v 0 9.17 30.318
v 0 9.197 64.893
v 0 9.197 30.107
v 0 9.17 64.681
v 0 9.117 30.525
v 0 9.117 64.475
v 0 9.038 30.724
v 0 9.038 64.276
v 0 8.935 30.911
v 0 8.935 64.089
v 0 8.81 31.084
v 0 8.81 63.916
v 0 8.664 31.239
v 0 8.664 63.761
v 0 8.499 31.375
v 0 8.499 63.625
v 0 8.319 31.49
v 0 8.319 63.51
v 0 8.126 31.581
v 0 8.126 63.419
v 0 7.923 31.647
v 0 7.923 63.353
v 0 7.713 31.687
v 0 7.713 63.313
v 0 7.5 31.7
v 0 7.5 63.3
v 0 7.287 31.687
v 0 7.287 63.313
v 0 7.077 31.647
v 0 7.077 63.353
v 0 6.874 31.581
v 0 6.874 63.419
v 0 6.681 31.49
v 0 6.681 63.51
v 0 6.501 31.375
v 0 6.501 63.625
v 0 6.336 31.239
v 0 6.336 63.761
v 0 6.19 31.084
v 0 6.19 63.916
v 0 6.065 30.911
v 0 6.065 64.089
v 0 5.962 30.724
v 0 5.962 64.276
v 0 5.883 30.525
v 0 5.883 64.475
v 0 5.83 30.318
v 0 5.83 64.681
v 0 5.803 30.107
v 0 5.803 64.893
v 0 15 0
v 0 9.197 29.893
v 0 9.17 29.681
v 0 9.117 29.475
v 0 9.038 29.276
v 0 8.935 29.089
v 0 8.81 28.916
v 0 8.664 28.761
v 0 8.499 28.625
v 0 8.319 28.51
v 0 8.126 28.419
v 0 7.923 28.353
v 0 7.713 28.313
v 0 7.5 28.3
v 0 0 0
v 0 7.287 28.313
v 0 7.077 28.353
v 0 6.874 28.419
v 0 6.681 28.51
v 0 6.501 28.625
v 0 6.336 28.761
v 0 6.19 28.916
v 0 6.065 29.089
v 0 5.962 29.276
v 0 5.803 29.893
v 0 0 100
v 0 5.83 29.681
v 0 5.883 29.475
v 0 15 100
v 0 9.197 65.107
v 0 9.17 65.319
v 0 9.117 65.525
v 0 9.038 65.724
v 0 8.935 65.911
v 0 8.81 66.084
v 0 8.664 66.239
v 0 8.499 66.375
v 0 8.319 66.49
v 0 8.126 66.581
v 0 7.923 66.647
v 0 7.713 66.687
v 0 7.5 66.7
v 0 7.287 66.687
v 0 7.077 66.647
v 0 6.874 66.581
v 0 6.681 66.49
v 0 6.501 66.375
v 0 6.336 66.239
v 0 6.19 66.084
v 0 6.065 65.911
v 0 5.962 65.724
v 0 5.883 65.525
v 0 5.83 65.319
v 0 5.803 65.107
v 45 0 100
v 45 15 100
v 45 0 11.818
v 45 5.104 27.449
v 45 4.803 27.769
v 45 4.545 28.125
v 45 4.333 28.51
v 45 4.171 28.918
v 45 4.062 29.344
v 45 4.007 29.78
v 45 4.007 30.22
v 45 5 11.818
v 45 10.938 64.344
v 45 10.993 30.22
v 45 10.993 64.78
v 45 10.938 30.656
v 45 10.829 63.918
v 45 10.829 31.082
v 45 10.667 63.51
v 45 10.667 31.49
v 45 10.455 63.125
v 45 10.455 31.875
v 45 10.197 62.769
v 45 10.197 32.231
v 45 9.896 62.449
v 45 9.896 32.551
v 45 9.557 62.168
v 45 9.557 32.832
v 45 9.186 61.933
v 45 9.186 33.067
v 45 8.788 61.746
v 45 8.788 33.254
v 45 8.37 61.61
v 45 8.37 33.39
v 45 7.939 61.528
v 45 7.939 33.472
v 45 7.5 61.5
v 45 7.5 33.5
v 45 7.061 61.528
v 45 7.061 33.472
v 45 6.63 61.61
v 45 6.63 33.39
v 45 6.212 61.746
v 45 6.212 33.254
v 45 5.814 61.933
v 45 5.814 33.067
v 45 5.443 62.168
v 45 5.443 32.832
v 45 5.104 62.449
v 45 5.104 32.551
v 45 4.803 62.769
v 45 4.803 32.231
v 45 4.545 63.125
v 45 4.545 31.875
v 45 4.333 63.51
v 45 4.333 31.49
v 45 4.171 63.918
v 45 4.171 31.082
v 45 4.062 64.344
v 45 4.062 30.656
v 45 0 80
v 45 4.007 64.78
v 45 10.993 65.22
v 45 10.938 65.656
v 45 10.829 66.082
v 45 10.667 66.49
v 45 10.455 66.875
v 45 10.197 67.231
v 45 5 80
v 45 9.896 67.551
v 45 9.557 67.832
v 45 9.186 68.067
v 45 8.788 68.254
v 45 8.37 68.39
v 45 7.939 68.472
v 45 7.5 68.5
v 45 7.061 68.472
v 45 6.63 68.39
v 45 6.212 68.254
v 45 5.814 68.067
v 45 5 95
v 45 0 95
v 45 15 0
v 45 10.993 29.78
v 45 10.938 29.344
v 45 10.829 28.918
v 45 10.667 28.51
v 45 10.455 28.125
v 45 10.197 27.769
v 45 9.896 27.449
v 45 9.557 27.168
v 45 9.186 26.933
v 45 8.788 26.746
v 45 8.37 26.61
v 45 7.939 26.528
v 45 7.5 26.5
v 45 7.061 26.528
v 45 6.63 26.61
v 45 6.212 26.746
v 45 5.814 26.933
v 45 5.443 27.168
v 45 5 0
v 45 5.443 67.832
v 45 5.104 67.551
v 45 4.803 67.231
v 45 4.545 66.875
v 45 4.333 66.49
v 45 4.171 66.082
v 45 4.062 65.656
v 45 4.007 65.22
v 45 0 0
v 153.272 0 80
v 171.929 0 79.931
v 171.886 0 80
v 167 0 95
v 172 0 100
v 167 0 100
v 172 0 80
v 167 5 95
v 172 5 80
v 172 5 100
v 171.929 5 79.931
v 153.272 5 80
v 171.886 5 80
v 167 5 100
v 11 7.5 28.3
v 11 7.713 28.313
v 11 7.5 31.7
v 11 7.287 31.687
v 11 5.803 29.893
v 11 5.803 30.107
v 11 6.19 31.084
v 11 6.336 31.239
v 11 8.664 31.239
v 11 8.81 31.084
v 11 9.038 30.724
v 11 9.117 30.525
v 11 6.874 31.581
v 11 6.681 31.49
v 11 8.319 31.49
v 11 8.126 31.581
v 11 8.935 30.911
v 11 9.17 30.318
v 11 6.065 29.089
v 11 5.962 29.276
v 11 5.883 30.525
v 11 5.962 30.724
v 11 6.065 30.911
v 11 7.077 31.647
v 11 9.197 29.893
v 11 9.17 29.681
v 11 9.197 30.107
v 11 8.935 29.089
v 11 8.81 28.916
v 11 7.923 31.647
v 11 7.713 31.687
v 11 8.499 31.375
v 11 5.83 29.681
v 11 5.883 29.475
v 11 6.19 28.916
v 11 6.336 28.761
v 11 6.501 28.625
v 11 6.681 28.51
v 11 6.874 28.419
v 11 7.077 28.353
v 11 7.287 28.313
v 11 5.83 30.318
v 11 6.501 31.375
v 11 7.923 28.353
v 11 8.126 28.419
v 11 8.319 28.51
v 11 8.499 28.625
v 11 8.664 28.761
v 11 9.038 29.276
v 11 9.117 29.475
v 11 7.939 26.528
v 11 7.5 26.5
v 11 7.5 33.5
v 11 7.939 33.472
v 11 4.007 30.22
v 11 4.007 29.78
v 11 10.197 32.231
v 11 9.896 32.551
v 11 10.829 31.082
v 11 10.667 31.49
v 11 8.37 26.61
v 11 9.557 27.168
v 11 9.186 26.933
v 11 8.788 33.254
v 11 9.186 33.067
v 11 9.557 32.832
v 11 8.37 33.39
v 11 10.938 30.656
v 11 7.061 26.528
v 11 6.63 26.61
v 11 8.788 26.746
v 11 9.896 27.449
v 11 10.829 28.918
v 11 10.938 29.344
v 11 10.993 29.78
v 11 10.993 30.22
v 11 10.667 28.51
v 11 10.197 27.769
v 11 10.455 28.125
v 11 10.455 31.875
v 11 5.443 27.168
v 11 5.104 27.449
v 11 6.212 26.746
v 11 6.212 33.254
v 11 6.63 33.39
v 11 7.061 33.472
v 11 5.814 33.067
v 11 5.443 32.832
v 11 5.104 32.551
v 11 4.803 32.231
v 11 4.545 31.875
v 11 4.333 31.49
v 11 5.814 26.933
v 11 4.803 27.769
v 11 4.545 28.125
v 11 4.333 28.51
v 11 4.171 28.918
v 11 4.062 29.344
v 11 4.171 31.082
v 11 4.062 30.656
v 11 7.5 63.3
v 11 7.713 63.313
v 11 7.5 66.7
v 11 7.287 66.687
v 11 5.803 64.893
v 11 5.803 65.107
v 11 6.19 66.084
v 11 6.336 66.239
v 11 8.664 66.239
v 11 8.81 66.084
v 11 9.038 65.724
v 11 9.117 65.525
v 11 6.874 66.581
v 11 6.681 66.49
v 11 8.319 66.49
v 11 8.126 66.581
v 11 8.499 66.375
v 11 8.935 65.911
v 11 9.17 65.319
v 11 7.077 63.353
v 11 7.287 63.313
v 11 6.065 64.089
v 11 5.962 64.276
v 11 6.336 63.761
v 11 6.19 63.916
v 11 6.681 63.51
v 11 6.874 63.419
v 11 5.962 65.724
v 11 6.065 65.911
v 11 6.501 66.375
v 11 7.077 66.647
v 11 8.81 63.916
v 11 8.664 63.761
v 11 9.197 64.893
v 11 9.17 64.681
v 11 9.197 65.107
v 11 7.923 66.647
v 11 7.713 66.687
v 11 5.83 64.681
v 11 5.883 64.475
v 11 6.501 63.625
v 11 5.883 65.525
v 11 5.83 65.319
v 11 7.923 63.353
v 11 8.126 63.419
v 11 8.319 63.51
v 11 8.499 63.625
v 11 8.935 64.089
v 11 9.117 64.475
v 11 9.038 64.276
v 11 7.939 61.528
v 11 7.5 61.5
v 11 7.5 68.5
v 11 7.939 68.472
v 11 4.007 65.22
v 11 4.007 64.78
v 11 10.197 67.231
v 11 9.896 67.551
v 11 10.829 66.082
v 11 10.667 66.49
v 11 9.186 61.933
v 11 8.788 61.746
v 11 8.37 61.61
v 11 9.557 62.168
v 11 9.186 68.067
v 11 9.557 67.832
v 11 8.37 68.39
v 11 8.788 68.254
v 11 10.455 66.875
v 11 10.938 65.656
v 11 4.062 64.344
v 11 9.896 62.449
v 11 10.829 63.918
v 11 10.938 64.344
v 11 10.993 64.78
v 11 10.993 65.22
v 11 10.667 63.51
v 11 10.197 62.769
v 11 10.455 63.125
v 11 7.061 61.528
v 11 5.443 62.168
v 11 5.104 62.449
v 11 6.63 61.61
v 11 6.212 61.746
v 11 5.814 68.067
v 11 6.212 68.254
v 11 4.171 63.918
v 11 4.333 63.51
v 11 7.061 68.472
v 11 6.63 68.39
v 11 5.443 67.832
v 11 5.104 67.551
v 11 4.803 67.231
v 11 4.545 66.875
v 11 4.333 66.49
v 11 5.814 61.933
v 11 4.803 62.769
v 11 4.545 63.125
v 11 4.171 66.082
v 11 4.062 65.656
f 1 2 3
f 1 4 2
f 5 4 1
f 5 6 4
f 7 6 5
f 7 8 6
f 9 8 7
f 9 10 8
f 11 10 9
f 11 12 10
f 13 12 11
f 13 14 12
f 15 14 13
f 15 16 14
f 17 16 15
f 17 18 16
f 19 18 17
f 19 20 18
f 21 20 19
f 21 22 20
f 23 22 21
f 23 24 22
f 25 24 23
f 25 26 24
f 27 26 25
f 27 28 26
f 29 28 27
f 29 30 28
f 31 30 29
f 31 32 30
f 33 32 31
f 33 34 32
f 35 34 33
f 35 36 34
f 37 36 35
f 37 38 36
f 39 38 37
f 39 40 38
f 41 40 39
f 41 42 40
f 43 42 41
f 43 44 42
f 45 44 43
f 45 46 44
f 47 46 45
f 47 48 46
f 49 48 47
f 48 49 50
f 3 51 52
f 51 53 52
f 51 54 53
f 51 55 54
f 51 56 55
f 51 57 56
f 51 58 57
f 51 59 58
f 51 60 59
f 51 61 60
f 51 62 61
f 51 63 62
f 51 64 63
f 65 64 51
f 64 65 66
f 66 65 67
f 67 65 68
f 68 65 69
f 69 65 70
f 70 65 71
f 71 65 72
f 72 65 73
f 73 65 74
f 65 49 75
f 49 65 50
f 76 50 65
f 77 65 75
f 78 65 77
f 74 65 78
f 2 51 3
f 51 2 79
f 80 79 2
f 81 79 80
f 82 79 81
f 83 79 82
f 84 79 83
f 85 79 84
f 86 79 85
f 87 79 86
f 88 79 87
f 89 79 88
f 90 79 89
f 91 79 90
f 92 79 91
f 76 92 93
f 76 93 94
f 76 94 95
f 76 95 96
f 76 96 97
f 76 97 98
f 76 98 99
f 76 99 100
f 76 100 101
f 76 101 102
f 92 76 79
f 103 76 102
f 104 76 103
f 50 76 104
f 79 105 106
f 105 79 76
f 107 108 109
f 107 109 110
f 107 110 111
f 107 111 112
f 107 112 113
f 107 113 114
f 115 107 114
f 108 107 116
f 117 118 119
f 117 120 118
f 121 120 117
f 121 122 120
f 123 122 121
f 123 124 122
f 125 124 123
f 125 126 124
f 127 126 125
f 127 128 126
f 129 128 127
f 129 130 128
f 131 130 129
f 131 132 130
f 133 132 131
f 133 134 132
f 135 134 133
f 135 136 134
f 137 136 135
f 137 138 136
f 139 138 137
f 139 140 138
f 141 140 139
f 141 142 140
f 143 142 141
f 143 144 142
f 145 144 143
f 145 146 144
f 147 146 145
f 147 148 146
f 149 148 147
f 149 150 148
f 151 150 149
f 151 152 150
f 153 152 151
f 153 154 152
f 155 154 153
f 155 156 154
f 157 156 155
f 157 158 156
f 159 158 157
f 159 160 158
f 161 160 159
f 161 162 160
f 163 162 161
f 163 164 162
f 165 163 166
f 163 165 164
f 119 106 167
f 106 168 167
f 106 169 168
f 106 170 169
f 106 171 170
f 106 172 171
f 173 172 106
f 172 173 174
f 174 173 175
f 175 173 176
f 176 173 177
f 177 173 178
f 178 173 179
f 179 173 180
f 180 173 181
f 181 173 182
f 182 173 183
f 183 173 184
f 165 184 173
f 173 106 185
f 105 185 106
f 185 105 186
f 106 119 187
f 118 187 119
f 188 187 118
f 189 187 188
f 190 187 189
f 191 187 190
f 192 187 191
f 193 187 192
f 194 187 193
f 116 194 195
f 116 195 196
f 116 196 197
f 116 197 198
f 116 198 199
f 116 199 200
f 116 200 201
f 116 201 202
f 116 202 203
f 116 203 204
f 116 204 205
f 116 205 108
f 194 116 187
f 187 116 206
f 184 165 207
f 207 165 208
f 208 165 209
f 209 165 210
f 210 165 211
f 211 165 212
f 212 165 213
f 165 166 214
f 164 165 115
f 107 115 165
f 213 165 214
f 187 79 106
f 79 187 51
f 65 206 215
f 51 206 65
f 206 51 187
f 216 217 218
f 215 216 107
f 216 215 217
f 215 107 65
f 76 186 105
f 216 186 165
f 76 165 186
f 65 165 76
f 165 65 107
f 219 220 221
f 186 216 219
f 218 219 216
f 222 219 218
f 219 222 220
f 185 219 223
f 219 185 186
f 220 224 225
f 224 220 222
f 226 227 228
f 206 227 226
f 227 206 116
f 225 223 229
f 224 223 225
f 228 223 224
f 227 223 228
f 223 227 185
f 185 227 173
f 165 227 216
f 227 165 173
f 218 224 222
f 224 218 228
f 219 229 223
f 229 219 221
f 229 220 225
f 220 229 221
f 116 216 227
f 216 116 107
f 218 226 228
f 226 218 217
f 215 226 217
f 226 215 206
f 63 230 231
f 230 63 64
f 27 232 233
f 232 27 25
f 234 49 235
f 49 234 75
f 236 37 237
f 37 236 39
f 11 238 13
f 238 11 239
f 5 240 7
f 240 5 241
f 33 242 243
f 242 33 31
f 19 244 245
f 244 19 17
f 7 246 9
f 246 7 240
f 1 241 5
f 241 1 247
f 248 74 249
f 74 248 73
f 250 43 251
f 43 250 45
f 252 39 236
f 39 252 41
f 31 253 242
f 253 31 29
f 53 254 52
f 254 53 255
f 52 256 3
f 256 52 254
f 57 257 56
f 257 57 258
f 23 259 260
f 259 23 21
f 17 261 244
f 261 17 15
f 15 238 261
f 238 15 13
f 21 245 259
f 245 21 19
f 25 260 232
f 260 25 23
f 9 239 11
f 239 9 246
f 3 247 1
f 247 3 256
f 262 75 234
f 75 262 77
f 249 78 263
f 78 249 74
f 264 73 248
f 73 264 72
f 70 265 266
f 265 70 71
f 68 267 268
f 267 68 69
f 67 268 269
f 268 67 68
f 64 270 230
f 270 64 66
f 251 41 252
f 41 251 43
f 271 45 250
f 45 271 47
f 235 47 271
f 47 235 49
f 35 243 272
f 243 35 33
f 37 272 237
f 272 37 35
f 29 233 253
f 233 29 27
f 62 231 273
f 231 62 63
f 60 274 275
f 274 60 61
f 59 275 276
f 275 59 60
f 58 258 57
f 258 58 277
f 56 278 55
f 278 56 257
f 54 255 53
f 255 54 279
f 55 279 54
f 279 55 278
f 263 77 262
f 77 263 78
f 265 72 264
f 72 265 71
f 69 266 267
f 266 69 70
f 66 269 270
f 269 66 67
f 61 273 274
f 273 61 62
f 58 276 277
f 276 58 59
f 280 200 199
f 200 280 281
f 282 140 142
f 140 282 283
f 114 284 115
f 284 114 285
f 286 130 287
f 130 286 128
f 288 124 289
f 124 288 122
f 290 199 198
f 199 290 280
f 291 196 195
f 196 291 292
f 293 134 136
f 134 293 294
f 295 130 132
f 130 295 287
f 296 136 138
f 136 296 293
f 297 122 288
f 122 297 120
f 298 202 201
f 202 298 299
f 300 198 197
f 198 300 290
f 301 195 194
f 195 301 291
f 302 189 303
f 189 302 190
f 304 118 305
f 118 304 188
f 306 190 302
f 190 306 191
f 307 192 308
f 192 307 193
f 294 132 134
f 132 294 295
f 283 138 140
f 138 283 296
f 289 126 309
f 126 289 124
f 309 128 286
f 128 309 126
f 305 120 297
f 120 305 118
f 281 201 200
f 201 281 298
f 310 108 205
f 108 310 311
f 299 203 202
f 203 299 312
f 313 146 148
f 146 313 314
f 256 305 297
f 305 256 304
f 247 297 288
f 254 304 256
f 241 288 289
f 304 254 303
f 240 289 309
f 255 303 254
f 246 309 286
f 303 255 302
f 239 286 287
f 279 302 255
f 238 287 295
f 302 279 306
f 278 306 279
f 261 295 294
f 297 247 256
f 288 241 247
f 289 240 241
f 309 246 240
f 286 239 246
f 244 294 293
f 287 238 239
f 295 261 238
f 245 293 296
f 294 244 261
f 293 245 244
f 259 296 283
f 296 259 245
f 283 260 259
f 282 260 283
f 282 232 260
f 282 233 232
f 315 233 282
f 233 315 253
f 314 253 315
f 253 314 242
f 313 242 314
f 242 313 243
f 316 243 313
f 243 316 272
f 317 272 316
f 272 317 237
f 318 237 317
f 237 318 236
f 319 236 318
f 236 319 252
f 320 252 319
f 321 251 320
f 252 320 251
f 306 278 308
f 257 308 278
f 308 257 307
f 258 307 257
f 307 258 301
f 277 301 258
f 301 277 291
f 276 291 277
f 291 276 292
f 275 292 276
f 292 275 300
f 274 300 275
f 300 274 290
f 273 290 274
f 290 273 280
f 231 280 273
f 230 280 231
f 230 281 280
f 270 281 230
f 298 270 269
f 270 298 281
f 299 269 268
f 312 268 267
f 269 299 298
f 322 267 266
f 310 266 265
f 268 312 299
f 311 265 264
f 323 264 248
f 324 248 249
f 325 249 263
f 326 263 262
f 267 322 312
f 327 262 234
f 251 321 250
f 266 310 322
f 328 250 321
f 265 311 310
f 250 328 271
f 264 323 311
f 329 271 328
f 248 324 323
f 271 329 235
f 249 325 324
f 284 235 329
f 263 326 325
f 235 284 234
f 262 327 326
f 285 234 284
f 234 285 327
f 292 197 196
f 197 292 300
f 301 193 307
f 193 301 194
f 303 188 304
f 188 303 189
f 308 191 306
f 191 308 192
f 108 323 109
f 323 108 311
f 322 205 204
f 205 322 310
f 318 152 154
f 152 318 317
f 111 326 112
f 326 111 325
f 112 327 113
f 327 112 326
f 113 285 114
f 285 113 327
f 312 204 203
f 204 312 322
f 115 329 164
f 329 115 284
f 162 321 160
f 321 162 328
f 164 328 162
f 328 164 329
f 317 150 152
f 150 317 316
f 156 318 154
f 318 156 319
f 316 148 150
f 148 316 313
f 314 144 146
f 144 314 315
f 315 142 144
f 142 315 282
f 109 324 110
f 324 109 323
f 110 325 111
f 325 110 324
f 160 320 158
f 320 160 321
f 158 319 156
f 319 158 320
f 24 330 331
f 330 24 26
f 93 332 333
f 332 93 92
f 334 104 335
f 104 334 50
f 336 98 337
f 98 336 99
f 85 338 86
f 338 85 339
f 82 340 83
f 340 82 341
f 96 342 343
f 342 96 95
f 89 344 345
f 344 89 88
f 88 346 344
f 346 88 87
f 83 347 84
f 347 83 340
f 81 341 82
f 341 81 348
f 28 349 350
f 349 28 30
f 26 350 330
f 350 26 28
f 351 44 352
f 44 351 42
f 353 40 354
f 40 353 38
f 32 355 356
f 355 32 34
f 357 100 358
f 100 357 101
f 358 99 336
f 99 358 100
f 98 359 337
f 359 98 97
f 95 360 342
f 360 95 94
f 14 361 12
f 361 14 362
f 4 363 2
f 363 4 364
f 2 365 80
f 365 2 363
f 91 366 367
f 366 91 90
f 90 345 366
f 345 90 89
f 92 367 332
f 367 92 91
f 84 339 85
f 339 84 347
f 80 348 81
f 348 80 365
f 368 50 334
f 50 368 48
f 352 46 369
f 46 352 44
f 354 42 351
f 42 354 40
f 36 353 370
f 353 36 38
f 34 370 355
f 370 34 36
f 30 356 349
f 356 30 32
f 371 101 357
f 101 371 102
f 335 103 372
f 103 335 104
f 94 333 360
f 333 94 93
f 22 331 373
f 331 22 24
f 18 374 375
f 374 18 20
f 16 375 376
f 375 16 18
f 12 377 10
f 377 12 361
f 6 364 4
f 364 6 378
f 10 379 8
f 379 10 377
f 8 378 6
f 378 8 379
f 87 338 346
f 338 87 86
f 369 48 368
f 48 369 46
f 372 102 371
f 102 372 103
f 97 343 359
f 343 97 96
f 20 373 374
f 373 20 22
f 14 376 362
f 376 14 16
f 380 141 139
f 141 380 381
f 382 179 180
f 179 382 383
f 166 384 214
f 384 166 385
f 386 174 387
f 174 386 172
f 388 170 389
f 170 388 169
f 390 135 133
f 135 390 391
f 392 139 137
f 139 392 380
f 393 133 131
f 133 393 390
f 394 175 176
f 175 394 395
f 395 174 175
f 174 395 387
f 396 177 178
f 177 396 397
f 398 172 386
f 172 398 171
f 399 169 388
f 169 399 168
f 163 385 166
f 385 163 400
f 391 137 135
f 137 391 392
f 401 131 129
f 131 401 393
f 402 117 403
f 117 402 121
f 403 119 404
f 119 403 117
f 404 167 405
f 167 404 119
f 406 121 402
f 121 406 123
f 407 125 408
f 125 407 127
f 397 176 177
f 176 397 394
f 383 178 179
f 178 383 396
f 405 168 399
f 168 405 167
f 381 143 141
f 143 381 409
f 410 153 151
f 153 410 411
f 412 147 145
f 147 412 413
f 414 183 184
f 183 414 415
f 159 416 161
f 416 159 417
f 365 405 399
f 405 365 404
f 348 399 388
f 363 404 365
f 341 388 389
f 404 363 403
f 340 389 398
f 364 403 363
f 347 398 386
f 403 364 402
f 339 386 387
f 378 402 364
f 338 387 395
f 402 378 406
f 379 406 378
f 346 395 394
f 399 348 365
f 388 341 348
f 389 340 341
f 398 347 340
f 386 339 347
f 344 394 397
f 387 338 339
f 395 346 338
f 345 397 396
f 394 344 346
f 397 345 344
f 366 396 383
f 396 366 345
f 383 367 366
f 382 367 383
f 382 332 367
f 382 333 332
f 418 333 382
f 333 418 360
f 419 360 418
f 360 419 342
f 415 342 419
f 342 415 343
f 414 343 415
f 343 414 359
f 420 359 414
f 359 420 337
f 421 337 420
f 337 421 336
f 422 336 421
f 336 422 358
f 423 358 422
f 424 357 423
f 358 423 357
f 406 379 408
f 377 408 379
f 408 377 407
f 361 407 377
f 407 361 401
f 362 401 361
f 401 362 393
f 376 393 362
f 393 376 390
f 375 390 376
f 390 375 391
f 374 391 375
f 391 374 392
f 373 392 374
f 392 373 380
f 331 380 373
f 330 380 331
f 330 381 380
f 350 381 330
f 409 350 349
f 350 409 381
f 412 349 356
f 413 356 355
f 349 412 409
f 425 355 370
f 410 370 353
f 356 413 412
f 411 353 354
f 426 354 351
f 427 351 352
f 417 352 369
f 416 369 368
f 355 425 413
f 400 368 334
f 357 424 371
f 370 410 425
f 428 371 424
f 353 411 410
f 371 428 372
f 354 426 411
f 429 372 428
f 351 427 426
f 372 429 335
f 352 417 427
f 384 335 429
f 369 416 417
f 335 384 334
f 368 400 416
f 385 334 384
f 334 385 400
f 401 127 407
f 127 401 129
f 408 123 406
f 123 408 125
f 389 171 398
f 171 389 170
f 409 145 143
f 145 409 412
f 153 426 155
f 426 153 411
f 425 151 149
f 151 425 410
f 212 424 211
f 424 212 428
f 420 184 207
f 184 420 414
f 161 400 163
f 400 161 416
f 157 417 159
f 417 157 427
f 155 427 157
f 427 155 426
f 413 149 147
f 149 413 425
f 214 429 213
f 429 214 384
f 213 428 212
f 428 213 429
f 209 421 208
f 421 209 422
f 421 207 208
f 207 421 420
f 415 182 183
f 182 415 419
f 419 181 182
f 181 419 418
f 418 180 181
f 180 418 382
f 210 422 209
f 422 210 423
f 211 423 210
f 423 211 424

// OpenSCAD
$fn = 50;

difference(){
    union(){
        cube([45, 15, 100]);

        translate([45,0,100-15-5])
        cube([127, 5, 15]);

        translate([45+127-5, 0, 100-5])
        cube([5,5,5,]);

        translate([45,0,0])
        rotate([0,-32.2,0])
        cube([150, 5, 10]);
    }

    // schraublöcher
    translate([-1, 7.5,30])
    rotate([0,90,0])
    cylinder(r=3.4/2, h=50);

    translate([11, 7.5,30])
    rotate([0,90,0])
    cylinder(r=3.5, h=50);

    translate([-1, 7.5,65])
    rotate([0,90,0])
    cylinder(r=3.4/2, h=50);

    translate([11, 7.5,65])
    rotate([0,90,0])
    cylinder(r=3.5, h=50);
}
